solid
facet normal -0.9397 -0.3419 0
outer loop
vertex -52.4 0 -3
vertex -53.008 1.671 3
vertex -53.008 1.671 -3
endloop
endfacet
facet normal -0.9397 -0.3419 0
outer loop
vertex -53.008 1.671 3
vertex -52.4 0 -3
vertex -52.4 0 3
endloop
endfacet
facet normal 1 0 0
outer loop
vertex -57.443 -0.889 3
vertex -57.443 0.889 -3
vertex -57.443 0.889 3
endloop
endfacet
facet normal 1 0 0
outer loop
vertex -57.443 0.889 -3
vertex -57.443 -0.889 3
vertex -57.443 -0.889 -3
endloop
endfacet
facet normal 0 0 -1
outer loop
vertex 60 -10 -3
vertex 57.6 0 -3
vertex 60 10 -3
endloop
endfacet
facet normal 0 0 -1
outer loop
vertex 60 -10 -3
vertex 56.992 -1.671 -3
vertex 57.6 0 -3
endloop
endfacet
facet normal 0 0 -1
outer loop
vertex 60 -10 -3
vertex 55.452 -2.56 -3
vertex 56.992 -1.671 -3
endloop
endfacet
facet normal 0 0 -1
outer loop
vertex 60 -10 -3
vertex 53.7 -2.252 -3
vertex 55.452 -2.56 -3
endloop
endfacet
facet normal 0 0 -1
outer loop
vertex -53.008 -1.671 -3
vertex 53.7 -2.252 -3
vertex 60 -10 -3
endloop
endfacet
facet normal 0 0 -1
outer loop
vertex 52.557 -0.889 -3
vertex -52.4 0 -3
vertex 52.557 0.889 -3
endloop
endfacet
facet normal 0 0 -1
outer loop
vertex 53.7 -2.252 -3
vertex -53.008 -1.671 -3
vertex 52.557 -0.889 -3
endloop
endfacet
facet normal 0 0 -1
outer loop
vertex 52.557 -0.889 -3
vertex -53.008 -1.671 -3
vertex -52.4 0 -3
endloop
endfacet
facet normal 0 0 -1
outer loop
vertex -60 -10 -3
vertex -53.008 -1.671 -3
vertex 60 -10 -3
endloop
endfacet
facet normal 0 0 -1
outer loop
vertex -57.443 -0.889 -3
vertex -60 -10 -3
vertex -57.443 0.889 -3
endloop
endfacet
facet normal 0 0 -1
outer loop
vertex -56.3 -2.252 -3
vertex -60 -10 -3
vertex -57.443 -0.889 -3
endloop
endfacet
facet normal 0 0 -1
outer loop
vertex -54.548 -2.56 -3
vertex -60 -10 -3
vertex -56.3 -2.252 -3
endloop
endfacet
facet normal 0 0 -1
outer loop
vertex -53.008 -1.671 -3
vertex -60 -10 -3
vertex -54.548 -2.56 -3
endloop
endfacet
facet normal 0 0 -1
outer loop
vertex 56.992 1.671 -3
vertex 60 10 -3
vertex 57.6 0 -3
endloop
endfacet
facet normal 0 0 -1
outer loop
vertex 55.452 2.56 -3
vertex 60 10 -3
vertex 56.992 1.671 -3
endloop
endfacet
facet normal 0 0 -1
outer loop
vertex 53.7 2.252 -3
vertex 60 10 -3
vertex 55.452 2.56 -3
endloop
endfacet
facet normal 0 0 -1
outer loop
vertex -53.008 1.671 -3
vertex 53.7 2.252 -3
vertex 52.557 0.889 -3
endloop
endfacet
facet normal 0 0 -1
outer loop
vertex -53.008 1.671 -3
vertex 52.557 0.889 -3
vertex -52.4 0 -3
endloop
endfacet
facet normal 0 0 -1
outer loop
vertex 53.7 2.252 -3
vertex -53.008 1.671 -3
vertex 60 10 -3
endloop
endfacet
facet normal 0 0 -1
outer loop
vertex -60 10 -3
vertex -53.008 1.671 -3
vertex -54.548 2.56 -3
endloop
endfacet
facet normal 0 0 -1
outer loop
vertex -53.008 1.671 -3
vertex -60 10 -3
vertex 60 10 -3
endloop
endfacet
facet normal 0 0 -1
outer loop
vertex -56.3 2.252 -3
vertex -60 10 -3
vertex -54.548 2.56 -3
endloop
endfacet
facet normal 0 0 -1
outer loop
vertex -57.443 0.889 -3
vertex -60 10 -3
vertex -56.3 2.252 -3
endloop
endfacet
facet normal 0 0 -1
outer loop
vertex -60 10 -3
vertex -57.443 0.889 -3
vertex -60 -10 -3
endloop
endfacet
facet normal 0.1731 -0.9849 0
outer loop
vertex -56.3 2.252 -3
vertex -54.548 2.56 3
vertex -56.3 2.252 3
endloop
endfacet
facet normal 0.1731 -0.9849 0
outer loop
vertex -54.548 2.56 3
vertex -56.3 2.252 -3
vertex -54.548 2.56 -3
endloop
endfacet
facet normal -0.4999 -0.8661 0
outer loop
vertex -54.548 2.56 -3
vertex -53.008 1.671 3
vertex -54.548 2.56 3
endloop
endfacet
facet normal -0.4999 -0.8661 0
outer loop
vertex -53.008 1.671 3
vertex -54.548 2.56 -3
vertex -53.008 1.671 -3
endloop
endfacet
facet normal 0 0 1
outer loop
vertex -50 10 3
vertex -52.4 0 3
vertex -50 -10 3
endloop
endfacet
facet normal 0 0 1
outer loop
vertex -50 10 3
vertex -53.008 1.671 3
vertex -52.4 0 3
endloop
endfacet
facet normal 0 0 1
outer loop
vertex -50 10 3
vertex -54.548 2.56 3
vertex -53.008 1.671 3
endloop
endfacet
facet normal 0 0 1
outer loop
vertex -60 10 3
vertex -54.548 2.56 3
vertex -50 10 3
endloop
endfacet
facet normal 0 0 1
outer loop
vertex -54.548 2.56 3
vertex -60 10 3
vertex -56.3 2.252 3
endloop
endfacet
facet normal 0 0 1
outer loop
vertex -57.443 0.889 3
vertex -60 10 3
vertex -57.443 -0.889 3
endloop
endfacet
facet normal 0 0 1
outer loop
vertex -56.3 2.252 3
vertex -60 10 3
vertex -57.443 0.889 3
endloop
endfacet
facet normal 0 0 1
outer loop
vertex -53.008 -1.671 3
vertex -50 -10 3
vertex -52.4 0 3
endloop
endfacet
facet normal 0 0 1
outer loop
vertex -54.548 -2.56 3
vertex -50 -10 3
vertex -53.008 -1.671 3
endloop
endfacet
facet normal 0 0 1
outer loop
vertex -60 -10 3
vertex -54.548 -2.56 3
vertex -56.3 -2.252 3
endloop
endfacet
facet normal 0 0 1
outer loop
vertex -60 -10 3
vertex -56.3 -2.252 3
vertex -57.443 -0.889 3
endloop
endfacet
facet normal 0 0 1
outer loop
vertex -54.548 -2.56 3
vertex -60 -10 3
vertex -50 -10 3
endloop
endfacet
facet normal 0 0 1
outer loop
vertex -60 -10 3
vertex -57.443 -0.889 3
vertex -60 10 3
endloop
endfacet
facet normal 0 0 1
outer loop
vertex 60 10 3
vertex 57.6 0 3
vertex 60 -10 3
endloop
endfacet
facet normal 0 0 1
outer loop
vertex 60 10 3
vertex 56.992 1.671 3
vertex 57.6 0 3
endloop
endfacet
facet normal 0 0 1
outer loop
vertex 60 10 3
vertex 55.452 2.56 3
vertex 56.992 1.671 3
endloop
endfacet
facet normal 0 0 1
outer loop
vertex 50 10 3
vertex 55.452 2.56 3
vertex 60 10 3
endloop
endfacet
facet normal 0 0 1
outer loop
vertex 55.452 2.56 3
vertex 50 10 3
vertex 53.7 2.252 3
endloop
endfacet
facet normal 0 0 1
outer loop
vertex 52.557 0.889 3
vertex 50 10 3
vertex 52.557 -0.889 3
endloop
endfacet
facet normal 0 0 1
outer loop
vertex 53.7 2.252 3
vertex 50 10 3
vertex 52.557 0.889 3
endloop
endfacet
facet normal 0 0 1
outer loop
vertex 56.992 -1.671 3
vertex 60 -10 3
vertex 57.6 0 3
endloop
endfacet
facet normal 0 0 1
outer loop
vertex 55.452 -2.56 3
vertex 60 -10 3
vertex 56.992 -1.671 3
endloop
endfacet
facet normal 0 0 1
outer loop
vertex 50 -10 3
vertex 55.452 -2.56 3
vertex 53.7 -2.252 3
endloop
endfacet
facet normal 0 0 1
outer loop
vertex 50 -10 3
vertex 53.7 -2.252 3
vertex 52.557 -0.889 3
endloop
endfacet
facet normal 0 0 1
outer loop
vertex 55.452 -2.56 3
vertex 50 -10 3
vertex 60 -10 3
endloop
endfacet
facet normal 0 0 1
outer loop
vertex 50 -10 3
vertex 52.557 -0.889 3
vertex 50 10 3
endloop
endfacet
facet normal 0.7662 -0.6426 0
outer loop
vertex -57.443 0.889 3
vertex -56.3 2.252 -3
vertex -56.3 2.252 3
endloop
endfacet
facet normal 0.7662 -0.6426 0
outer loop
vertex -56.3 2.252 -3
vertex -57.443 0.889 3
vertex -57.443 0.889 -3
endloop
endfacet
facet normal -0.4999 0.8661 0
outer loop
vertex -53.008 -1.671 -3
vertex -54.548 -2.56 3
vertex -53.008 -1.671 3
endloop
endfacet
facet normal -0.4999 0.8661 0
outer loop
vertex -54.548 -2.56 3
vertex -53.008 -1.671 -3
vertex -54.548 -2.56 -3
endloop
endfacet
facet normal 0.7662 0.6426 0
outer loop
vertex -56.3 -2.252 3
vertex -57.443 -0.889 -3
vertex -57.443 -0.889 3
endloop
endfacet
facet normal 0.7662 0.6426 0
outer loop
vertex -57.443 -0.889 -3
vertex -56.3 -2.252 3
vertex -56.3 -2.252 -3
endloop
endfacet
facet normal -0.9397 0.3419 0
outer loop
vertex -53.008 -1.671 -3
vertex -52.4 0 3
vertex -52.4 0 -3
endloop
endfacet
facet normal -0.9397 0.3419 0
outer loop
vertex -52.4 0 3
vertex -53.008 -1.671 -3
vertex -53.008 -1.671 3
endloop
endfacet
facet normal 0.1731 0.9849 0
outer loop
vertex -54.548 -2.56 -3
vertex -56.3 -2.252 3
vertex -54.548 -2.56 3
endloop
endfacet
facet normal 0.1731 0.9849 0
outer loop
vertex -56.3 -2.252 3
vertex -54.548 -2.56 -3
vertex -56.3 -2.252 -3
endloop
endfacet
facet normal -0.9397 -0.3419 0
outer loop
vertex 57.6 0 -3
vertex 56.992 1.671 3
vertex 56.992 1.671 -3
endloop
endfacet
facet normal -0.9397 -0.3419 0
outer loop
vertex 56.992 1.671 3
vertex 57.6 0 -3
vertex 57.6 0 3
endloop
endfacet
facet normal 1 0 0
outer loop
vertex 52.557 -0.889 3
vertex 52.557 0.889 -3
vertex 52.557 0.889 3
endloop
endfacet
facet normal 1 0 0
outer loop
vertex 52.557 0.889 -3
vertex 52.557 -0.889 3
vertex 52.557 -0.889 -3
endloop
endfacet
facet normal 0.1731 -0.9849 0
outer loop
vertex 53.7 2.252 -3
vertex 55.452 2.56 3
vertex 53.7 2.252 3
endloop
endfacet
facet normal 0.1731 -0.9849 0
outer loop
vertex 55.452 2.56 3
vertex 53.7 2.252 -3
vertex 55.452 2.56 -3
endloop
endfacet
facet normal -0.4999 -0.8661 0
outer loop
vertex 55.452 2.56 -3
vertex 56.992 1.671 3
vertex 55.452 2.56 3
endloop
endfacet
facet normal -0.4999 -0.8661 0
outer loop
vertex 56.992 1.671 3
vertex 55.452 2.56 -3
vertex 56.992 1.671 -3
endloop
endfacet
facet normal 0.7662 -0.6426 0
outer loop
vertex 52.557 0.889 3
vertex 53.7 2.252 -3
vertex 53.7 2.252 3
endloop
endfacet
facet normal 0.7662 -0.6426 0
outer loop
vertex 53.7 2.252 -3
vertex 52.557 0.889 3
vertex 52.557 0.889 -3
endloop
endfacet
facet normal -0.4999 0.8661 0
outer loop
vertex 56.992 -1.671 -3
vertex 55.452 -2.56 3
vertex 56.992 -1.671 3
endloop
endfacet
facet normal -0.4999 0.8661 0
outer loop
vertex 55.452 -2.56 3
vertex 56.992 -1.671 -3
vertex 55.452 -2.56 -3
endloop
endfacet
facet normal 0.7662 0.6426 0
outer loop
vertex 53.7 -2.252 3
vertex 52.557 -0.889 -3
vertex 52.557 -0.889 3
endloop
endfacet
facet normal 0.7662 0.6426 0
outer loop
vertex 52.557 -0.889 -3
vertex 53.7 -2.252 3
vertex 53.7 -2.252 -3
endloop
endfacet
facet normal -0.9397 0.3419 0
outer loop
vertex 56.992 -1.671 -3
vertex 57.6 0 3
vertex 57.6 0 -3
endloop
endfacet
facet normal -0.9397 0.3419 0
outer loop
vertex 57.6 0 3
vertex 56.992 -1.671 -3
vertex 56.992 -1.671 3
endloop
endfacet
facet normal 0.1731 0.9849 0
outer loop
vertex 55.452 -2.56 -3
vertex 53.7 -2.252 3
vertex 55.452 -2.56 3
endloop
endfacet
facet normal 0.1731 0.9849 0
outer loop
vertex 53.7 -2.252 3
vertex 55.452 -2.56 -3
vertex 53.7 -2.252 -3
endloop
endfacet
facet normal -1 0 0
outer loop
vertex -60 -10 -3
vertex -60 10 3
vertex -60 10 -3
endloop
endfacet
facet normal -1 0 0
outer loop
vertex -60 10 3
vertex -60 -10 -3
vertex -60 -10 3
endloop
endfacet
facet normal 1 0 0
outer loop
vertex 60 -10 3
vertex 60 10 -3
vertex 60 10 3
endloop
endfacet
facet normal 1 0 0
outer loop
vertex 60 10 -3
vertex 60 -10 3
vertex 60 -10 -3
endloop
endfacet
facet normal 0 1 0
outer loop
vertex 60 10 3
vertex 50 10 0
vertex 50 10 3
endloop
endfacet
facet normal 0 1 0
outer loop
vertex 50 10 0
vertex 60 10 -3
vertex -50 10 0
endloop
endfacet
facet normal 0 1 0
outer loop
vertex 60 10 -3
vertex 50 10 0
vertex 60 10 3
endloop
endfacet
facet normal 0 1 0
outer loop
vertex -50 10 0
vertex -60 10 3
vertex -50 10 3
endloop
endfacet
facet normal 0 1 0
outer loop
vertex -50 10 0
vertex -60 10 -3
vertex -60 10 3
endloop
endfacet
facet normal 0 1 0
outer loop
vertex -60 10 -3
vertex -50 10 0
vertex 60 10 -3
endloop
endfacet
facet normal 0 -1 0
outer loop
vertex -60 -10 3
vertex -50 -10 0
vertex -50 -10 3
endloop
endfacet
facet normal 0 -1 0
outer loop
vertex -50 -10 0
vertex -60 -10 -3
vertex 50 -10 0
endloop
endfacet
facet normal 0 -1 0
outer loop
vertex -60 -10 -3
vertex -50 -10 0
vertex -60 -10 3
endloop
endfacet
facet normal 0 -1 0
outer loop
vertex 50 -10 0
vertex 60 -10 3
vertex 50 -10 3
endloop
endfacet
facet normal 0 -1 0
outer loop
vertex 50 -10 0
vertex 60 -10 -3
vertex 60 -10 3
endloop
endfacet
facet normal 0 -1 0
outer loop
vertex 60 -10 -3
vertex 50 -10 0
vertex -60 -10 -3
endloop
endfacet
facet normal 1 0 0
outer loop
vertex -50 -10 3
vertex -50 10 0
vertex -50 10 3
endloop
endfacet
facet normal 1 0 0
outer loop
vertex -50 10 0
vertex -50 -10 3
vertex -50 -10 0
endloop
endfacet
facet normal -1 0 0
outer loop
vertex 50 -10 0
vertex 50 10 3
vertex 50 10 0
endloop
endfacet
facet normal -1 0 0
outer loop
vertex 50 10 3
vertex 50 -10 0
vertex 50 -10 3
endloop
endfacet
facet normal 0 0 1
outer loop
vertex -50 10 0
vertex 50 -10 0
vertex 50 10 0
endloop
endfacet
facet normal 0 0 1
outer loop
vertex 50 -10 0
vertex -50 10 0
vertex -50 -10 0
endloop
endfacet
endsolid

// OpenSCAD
difference() {
    cube([120,20,6],center=true);
    translate([0,0,1.5])cube([100,20,3],center=true);
    for(i=[-1,1])translate([i*55,0])cylinder(r=2.6,h=6,center=true);
    }
